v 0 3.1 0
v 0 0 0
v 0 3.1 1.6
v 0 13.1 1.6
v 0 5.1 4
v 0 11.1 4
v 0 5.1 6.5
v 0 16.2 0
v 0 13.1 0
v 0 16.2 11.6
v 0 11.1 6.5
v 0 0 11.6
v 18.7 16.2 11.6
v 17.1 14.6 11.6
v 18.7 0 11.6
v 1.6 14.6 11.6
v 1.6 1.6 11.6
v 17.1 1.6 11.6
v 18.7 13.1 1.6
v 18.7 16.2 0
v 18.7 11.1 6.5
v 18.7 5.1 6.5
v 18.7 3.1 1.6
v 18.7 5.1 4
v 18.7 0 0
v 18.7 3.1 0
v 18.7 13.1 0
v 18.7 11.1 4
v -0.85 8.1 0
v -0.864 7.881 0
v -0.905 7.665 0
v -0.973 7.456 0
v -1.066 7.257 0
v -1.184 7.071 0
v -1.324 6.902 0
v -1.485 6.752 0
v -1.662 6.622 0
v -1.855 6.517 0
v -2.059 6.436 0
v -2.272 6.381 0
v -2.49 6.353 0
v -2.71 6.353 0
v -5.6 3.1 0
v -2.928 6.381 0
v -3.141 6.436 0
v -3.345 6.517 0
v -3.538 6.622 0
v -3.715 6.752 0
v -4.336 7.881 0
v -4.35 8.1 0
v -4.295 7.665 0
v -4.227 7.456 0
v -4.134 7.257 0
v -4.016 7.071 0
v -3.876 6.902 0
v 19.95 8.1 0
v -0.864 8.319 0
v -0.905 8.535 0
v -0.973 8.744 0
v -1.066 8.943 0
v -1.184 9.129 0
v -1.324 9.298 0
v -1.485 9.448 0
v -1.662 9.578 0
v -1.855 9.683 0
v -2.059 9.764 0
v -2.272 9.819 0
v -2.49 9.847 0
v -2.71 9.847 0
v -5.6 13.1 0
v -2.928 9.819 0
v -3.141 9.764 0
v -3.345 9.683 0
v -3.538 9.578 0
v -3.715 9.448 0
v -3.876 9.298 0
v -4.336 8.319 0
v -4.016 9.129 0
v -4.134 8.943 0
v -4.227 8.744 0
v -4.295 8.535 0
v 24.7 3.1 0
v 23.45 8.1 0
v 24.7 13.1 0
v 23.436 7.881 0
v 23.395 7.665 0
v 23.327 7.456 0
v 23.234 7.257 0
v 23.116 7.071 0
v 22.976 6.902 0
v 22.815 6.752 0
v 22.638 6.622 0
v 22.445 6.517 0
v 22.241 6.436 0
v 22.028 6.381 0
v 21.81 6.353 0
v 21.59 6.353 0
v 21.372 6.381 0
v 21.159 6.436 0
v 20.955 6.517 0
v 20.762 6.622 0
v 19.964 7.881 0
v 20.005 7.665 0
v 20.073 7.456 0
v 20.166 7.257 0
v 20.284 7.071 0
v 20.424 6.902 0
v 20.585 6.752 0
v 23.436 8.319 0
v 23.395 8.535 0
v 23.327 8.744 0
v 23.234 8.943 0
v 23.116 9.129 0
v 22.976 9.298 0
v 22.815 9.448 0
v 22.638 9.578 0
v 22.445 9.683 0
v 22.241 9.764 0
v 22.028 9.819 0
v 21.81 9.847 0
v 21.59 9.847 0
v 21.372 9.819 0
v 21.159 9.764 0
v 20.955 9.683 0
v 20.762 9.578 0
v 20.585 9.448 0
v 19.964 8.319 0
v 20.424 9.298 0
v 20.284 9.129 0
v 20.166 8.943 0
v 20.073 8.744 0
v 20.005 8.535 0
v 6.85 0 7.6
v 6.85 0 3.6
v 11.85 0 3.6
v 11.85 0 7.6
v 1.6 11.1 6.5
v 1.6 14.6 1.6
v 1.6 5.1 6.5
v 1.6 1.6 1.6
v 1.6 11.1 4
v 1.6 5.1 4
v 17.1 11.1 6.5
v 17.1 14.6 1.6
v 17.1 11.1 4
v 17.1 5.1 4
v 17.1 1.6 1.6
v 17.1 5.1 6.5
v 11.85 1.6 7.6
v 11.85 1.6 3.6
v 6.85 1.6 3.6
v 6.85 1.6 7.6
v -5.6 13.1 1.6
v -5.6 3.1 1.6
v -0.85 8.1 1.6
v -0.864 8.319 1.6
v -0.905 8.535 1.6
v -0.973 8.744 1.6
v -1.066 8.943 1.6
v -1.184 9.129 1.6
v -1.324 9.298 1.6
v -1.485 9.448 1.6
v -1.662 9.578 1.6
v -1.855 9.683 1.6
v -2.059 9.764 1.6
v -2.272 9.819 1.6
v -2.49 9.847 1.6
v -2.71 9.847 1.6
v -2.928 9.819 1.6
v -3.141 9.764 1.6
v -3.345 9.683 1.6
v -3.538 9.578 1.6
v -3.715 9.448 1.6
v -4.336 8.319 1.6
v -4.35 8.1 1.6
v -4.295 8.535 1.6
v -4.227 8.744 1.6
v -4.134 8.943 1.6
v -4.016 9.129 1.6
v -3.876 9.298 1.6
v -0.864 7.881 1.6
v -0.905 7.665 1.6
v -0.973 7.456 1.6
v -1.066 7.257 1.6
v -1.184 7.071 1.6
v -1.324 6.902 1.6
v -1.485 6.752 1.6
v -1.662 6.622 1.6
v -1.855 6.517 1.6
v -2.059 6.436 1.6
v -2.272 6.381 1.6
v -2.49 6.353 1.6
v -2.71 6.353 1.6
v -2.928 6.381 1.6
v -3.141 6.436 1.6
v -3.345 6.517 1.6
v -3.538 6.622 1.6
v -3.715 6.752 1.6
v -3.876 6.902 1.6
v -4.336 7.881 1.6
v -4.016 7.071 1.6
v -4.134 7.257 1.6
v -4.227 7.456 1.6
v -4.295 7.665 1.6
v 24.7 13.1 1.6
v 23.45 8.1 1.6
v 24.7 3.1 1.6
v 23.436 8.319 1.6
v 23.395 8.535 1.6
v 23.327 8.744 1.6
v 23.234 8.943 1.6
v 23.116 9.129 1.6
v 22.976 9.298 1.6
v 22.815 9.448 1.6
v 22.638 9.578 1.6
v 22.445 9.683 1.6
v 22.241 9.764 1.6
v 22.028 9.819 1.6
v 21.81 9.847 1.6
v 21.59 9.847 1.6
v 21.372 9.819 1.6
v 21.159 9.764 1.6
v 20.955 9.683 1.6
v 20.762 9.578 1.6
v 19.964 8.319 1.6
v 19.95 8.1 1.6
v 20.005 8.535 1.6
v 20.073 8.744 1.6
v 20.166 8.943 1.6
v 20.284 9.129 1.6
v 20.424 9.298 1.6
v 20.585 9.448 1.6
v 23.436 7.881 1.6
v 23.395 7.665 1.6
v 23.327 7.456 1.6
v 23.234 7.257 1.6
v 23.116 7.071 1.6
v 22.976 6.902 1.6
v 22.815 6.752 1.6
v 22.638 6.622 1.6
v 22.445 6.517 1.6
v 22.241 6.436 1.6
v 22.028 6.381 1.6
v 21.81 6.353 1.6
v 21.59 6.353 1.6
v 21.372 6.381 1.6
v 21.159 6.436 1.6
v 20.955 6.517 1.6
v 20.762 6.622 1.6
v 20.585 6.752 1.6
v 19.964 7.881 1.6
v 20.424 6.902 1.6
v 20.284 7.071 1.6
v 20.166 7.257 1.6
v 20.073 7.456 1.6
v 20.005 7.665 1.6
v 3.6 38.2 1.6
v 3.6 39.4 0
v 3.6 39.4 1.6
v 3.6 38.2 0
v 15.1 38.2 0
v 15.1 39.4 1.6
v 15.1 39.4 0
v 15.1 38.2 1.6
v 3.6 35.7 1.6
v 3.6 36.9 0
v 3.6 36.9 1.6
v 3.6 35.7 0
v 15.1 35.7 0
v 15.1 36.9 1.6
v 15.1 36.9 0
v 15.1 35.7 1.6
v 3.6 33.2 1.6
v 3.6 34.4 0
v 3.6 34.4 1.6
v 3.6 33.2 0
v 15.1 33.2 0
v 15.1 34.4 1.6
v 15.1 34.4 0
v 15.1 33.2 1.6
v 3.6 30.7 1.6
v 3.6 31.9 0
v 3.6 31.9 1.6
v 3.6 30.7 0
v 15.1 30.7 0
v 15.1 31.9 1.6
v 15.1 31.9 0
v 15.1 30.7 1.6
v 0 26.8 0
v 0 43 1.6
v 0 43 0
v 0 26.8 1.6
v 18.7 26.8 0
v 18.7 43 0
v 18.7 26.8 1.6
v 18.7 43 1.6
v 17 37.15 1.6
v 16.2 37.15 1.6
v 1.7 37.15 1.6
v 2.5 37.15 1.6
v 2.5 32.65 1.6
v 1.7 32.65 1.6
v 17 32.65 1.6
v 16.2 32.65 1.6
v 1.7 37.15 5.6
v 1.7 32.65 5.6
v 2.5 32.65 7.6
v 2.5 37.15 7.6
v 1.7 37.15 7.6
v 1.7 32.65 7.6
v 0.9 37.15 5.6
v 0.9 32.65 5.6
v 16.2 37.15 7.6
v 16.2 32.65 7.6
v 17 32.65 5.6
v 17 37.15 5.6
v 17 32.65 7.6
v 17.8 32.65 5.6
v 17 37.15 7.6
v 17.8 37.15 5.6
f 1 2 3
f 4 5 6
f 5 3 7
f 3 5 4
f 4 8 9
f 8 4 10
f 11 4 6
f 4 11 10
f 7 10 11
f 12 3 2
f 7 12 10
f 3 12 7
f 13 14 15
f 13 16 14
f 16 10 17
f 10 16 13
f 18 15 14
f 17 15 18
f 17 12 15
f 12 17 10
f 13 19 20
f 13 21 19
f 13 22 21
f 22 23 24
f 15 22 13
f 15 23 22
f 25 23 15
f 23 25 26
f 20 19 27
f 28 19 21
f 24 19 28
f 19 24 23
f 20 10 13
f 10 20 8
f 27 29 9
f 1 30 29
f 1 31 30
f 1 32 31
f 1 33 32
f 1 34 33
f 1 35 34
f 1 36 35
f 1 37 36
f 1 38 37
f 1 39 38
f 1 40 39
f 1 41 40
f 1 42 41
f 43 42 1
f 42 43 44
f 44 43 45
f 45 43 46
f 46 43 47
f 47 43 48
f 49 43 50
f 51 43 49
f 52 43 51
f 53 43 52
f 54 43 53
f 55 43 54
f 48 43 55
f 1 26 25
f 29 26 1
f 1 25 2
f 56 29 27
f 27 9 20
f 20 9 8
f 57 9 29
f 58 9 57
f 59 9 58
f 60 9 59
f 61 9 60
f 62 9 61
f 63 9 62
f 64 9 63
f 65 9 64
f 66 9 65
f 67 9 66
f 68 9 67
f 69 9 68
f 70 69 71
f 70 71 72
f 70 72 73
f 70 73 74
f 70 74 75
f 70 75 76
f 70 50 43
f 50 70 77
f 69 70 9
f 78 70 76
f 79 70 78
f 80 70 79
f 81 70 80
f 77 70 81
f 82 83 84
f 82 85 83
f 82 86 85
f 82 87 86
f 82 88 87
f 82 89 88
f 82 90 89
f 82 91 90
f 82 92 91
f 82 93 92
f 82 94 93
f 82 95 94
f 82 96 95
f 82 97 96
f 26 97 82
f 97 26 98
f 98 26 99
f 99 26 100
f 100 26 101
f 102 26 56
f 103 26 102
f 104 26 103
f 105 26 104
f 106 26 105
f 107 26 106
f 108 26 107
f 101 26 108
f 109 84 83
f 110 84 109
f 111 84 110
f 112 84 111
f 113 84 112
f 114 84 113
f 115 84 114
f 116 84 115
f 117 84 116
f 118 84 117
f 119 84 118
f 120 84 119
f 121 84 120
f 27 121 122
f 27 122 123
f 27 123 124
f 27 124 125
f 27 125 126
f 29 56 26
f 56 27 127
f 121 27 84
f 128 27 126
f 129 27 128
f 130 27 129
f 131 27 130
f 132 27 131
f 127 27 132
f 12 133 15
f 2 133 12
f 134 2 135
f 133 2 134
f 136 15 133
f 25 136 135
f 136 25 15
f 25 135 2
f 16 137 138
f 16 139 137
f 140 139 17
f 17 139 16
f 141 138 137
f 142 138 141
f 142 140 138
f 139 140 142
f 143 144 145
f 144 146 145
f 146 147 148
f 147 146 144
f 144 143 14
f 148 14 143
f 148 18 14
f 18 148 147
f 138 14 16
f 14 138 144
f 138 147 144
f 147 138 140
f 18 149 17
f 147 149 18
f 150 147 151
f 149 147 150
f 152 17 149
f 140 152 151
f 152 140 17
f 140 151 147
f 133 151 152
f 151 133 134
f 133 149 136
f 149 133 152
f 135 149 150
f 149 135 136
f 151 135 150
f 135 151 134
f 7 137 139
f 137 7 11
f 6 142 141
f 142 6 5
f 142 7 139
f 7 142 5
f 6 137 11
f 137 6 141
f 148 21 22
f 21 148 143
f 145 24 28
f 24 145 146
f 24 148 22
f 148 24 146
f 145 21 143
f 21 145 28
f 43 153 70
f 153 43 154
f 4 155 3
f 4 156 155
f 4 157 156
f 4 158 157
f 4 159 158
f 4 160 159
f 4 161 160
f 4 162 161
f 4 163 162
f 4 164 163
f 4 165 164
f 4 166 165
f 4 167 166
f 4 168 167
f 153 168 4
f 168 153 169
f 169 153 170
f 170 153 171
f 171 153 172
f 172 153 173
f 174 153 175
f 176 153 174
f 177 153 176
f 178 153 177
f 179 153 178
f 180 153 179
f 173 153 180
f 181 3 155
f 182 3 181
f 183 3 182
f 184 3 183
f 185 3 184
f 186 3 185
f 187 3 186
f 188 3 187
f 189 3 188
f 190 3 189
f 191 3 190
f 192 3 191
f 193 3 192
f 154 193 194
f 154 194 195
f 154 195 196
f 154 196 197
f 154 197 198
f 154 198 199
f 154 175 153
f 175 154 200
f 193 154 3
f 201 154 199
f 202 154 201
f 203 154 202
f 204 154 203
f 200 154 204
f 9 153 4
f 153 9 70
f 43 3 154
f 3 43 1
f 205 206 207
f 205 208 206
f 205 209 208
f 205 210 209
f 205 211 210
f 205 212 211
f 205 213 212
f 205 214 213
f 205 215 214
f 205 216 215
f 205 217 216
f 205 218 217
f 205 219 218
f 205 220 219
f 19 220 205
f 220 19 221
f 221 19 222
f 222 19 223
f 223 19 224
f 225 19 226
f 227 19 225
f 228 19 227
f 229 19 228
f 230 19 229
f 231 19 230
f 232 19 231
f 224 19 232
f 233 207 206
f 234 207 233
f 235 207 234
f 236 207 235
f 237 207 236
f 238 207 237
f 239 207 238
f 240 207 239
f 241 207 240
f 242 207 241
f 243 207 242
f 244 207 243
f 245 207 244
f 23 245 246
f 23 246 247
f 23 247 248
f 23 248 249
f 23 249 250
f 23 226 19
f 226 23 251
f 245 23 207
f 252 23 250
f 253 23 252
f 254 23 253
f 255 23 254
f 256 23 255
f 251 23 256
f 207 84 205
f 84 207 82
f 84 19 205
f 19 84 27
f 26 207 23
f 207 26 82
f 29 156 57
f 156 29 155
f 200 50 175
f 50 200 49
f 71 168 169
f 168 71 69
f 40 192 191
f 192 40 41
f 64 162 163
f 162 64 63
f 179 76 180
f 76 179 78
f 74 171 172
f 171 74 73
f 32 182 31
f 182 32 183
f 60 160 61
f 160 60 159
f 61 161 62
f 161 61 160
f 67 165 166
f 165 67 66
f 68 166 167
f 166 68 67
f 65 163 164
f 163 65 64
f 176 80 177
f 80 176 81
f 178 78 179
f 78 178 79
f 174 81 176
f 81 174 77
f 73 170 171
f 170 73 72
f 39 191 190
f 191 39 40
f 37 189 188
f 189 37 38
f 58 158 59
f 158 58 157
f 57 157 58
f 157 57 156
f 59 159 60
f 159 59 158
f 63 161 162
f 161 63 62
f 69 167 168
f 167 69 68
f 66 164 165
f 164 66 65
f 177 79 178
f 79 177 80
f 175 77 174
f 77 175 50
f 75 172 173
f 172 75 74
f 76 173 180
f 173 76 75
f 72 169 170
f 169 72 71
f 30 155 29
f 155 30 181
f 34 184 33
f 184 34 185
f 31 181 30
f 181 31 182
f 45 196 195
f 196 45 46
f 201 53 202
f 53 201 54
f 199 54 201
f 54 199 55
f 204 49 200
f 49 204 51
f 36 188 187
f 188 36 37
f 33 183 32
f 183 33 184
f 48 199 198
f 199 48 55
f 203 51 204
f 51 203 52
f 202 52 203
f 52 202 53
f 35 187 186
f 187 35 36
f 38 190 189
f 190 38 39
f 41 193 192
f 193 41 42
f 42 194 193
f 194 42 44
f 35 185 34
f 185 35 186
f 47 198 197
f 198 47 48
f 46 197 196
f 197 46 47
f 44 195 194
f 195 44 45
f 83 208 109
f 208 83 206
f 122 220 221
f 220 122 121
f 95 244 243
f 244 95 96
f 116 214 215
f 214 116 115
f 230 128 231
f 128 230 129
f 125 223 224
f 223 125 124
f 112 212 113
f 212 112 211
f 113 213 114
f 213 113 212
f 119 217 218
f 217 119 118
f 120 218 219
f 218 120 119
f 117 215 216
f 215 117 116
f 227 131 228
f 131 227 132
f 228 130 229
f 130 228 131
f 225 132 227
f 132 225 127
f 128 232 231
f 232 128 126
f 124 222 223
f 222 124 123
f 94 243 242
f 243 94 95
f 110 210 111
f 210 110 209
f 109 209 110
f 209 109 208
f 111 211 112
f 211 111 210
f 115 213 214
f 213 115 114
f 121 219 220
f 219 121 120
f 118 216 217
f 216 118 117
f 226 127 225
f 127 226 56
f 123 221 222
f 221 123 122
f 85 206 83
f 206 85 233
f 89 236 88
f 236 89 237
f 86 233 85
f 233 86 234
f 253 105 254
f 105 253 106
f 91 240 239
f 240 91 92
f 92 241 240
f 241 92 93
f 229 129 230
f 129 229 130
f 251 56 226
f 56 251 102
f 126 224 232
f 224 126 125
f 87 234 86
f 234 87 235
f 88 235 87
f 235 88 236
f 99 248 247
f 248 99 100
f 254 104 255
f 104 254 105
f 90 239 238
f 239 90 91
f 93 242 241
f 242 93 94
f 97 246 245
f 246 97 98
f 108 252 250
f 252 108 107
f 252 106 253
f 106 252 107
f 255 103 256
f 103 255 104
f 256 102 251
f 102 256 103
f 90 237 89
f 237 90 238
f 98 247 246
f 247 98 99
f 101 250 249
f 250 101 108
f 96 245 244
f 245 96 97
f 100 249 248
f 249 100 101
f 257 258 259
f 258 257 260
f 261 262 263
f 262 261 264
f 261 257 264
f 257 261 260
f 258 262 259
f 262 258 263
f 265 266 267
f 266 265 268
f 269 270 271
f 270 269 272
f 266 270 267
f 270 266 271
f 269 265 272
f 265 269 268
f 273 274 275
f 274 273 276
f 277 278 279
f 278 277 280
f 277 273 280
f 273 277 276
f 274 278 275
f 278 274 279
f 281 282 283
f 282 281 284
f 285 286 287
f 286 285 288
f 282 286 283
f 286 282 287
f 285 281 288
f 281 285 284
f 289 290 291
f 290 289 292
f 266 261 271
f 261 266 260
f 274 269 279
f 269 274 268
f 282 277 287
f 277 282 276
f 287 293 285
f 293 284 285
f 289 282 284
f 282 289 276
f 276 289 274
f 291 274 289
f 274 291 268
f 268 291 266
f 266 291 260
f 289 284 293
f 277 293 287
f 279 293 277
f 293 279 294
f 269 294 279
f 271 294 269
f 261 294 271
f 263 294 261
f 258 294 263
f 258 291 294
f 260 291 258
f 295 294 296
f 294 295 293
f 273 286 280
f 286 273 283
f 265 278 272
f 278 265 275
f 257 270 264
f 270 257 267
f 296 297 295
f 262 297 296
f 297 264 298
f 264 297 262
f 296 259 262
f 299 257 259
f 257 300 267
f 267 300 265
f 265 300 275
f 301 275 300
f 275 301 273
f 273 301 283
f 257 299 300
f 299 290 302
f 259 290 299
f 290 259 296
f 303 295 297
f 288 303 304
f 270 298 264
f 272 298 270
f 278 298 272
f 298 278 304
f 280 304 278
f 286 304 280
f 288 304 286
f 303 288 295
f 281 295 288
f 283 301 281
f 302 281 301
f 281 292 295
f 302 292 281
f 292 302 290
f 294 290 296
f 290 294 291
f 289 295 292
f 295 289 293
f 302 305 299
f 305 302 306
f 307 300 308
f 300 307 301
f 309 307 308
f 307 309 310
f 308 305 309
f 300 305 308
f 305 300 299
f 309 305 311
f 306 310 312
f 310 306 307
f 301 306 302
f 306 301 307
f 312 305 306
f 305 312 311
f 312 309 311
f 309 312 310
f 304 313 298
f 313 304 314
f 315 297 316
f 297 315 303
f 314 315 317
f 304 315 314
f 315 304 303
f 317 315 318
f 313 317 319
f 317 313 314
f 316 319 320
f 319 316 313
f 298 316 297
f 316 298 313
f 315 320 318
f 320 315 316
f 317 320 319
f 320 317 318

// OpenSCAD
// --- PARAMÈTRES RÉELS DU CAPTEUR ---
pcb_w = 15.5;      
pcb_l = 13.0;      
pcb_h = 2.0;       
wall = 1.6;        
h_interne = 10.0;  // Assez haut pour les soudures/headers
cable_w = 5.0;     
cable_h = 4.0;     

$fn = 50;

// --- VUE D'ENSEMBLE ---
translate([0, 0, 0]) boitier_base();

// Couvercle retourné pour l'impression
translate([0, pcb_l + 30, wall]) 
    rotate([180, 0, 0]) 
    boitier_couvercle();

// --- MODULE BASE ---
module boitier_base() {
    union() {
        difference() {
            // Corps extérieur
            cube([pcb_w + 2*wall, pcb_l + 2*wall, h_interne + wall]);
            
            // Volume intérieur
            translate([wall, wall, wall])
                cube([pcb_w, pcb_l, h_interne + 2]);
                
            // Sortie de câble
            translate([pcb_w/2 + wall - cable_w/2, -1, wall + 2])
                cube([cable_w, wall + 2, cable_h]);

            // ENCOCHES ABAISSÉES (pour bras plus longs et souples)
            // On descend l'encoche à Z = 5mm (au lieu du haut de la paroi)
            translate([-1, (pcb_l+2*wall)/2 - 3, 4])
                cube([wall + 2, 6, 2.5]);
            translate([pcb_w + wall - 1, (pcb_l+2*wall)/2 - 3, 4])
                cube([wall + 2, 6, 2.5]);
        }
        
        // OREILLES DE FIXATION
        difference() {
            union() {
                translate([-(wall + 4), (pcb_l + 2*wall)/2 - 5, 0]) cube([6, 10, wall]);
                translate([pcb_w + 2*wall, (pcb_l + 2*wall)/2 - 5, 0]) cube([6, 10, wall]);
            }
            translate([-(wall + 1), (pcb_l + 2*wall)/2, -1]) cylinder(h=wall + 2, r=1.75);
            translate([pcb_w + 2*wall + 3, (pcb_l + 2*wall)/2, -1]) cylinder(h=wall + 2, r=1.75);
        }
    }
}

// --- MODULE COUVERCLE ---
module boitier_couvercle() {
    clip_w = 4.5;
    bras_ep = 0.8; // Affiné pour la souplesse
    longueur_bras = h_interne - 4; // Bras très long pour faire levier

    union() {
        // Plaque supérieure ventilée
        difference() {
            cube([pcb_w + 2*wall, pcb_l + 2*wall, wall]);
            for (i = [0 : 3]) {
                translate([wall + 2, wall + 2 + (i*2.5), -1])
                    cube([pcb_w - 4, 1.2, wall + 2]);
            }
        }
        
        // --- CLIP GAUCHE ---
        translate([wall + 0.1, (pcb_l + 2*wall)/2 - clip_w/2, -longueur_bras]) {
            cube([bras_ep, clip_w, longueur_bras]); // Le bras flexible
            
            // Ergot déplacé vers le bas pour s'aligner sur la nouvelle fenêtre
            translate([0, 0, 2]) // Positionné pour tomber dans l'encoche à Z=5
                rotate([0,180, 0])
                polyhedron(
                    points=[[0,0,0], [0.8,0,0], [0.8,clip_w,0], [0,clip_w,0], [0,0,2], [0,clip_w,2]],
                    faces=[[0,1,2,3],[4,5,2,1],[0,4,1],[5,4,3,2],[0,3,4]]
                );
        }
        
        // --- CLIP DROIT ---
        translate([pcb_w + 2*wall - wall - bras_ep - 0.1, (pcb_l + 2*wall)/2 - clip_w/2, -longueur_bras]) {
            cube([bras_ep, clip_w, longueur_bras]);
            
            // Ergot déplacé
            translate([bras_ep, 0, 2])
                mirror([0,0,1])
                polyhedron(
                    points=[[0,0,0], [0.8,0,0], [0.8,clip_w,0], [0,clip_w,0], [0,0,2], [0,clip_w,2]],
                    faces=[[0,1,2,3],[4,5,2,1],[0,4,1],[5,4,3,2],[0,3,4]]
                );
        }
    }
}
